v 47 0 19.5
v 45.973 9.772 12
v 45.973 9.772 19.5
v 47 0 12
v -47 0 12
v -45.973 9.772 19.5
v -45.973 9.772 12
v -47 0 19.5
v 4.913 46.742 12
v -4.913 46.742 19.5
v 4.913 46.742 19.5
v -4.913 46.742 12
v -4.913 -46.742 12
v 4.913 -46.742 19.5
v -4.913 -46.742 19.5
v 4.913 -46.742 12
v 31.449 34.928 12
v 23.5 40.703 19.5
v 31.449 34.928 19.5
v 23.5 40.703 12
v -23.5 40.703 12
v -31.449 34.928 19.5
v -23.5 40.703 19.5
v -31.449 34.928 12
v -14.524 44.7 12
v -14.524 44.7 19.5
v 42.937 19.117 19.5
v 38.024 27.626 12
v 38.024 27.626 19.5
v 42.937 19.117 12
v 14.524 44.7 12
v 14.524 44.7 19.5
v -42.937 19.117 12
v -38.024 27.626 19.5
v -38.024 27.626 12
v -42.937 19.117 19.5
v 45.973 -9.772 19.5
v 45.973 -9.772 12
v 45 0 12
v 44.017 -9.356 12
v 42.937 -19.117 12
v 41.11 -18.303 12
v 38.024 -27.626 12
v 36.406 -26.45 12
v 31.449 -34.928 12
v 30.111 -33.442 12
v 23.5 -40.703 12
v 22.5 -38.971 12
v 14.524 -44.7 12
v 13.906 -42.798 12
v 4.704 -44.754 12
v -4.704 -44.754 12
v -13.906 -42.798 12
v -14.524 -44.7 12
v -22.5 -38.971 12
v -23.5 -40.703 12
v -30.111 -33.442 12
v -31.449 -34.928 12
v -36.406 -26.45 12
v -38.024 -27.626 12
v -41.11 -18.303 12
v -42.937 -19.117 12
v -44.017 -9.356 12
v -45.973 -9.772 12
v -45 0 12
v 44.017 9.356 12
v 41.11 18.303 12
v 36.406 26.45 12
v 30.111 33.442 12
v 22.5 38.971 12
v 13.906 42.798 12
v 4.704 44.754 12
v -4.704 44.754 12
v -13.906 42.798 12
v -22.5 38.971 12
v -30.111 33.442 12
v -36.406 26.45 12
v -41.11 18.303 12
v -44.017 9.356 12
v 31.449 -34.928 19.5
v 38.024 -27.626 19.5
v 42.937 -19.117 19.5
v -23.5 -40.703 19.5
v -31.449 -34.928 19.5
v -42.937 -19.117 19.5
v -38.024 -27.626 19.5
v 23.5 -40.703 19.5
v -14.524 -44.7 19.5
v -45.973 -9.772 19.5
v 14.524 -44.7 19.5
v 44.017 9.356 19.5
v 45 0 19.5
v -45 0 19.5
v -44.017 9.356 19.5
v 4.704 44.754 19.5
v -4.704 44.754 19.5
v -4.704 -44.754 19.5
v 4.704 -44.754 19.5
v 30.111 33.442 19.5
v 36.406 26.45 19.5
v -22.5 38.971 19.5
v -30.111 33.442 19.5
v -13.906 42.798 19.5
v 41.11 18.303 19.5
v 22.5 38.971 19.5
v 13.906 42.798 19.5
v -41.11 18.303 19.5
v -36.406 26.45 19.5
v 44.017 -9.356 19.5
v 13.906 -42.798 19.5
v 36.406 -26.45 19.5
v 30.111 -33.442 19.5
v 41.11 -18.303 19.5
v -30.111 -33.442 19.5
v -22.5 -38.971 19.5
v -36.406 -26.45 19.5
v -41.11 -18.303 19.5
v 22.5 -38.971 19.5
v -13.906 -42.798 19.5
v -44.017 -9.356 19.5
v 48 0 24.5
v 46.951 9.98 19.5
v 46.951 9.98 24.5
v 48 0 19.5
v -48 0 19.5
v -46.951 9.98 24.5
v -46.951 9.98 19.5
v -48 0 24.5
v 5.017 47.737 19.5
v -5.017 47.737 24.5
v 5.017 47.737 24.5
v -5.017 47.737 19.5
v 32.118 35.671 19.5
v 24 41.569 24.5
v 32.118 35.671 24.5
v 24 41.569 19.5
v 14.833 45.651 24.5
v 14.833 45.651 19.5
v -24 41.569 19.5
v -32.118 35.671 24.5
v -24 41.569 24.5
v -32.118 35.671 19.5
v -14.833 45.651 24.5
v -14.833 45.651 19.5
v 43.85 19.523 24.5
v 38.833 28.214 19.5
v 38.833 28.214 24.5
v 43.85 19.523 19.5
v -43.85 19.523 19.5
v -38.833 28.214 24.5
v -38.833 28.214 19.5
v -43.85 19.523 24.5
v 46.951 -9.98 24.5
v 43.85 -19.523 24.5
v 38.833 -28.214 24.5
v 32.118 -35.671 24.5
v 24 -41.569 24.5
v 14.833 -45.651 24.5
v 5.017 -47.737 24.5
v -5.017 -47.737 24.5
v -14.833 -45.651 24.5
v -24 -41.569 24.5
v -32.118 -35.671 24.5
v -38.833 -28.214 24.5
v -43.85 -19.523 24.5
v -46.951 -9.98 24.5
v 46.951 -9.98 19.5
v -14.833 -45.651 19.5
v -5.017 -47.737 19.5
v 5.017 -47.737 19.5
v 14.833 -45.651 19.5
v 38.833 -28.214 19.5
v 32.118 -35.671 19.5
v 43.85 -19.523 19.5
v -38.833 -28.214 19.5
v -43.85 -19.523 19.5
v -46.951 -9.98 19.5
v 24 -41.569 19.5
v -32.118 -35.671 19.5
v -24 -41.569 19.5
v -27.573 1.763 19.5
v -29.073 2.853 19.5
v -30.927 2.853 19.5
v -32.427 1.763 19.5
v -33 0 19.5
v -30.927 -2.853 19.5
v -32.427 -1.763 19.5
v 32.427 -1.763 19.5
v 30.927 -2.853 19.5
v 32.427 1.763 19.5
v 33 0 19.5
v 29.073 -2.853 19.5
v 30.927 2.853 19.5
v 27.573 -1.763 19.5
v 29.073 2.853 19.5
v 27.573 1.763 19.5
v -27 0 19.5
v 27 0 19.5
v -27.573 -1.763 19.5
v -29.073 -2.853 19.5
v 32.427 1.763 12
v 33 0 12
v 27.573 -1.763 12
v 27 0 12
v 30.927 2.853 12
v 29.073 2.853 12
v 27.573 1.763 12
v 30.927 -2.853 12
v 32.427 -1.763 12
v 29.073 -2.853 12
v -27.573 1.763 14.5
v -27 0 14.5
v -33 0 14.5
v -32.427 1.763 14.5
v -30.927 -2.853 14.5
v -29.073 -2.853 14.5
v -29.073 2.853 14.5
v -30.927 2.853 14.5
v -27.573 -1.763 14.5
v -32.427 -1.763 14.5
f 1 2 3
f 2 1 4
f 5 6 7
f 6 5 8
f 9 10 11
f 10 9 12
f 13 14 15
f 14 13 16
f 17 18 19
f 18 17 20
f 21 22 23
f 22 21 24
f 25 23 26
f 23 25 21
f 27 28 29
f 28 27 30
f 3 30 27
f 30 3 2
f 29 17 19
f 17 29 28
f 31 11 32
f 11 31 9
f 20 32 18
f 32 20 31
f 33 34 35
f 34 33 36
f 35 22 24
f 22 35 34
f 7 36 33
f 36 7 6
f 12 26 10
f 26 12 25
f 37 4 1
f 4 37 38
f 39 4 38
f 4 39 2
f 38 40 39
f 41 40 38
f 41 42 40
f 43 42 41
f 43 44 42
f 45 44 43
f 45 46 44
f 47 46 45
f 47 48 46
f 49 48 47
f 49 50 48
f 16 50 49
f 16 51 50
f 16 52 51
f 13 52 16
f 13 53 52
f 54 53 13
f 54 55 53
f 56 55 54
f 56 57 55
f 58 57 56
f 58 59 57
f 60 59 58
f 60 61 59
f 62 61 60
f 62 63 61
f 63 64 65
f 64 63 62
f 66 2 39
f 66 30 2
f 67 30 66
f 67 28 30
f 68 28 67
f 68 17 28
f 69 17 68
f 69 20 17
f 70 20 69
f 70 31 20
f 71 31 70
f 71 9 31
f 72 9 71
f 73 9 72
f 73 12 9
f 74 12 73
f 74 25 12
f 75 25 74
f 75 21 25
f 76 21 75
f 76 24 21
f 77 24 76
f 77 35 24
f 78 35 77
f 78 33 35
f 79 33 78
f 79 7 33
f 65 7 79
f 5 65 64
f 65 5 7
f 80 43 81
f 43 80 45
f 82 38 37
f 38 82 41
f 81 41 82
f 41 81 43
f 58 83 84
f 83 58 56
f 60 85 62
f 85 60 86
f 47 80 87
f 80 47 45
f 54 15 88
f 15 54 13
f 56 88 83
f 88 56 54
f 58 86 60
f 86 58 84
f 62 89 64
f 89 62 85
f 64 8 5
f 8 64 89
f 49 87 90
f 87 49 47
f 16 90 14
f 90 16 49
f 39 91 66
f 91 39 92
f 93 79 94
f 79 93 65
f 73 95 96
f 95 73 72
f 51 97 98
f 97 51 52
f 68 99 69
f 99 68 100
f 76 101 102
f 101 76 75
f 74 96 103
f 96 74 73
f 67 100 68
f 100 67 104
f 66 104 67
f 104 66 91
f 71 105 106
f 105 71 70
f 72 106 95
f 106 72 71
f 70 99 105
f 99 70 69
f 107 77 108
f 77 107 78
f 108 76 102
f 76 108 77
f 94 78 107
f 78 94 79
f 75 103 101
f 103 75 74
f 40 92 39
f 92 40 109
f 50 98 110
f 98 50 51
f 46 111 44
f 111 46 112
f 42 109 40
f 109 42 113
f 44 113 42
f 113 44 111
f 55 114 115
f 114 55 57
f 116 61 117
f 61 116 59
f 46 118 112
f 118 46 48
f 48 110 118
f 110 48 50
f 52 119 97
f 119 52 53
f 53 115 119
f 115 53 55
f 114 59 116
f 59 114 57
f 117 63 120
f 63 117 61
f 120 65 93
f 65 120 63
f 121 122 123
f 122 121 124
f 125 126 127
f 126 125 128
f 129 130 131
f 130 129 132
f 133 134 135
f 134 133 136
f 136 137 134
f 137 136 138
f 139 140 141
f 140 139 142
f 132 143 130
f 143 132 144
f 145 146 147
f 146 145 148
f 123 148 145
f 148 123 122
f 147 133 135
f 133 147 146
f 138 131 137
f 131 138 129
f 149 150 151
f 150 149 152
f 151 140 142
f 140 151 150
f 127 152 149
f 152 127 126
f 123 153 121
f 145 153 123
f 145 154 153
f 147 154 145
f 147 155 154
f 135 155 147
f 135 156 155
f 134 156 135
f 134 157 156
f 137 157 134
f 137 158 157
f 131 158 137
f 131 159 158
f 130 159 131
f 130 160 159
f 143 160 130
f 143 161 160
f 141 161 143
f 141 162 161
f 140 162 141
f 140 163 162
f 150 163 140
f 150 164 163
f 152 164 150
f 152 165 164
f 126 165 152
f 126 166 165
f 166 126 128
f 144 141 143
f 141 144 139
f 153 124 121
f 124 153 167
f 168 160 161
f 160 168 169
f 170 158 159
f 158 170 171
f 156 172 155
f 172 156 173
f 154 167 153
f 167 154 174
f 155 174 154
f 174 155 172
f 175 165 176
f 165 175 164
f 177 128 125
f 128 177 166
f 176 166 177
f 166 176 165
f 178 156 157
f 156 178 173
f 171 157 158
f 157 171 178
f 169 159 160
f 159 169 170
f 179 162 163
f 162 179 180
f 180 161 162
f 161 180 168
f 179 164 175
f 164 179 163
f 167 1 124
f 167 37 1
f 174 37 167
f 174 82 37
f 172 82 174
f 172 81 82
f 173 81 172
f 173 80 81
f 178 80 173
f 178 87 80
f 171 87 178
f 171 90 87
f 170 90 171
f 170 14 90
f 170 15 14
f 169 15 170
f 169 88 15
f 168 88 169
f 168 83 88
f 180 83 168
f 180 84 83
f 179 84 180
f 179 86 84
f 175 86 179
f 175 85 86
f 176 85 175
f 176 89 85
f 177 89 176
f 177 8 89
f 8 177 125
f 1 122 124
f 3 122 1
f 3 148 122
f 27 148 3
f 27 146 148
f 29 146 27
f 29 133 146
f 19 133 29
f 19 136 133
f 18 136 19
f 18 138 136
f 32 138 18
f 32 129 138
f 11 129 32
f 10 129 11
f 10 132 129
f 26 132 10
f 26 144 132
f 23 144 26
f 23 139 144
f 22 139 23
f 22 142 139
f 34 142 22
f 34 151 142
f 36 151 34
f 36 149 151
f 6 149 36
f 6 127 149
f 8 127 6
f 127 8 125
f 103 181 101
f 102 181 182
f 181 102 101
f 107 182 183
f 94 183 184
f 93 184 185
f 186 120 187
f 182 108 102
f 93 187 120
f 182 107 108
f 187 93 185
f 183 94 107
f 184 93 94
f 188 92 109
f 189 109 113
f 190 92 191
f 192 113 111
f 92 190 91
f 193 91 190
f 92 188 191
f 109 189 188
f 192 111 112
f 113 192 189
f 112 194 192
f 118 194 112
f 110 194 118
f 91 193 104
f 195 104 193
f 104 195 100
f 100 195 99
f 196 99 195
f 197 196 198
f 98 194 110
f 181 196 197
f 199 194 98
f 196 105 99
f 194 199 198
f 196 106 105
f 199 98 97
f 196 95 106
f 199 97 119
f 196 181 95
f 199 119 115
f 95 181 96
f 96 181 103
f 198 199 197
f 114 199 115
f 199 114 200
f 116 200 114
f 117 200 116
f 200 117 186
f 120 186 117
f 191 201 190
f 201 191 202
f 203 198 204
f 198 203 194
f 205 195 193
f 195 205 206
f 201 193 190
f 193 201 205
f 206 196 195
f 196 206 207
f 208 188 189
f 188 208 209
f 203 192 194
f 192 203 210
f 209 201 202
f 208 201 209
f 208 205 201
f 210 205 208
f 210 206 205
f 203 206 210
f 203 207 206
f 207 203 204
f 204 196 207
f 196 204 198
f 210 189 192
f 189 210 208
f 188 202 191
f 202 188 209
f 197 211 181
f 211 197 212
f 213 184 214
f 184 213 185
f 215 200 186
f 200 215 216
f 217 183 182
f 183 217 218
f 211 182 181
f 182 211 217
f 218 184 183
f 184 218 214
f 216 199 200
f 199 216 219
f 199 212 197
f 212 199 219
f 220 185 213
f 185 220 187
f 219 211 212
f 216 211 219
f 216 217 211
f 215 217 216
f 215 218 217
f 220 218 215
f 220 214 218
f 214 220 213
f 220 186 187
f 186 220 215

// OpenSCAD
// Top Layer
union(){
    // The top lid
    translate([0,0,22])cylinder(h = 5, r = 48, center = true);
    
    difference()
    {
            translate([0,0,16])cylinder(h = 8, r = 47, center = true);
            translate([0,0,16])cylinder(h = 8, r = 45, center = true);
    }
    
    // The rod for the button on the inner gear
    translate([30, 0, 17])
    {
        cylinder(h=10,r=3,center=true);
    }
    
    // The rod for the spring location
    translate([-30,0,17])
    {
        cylinder(h=5,r=3,center=true);
    }
}
